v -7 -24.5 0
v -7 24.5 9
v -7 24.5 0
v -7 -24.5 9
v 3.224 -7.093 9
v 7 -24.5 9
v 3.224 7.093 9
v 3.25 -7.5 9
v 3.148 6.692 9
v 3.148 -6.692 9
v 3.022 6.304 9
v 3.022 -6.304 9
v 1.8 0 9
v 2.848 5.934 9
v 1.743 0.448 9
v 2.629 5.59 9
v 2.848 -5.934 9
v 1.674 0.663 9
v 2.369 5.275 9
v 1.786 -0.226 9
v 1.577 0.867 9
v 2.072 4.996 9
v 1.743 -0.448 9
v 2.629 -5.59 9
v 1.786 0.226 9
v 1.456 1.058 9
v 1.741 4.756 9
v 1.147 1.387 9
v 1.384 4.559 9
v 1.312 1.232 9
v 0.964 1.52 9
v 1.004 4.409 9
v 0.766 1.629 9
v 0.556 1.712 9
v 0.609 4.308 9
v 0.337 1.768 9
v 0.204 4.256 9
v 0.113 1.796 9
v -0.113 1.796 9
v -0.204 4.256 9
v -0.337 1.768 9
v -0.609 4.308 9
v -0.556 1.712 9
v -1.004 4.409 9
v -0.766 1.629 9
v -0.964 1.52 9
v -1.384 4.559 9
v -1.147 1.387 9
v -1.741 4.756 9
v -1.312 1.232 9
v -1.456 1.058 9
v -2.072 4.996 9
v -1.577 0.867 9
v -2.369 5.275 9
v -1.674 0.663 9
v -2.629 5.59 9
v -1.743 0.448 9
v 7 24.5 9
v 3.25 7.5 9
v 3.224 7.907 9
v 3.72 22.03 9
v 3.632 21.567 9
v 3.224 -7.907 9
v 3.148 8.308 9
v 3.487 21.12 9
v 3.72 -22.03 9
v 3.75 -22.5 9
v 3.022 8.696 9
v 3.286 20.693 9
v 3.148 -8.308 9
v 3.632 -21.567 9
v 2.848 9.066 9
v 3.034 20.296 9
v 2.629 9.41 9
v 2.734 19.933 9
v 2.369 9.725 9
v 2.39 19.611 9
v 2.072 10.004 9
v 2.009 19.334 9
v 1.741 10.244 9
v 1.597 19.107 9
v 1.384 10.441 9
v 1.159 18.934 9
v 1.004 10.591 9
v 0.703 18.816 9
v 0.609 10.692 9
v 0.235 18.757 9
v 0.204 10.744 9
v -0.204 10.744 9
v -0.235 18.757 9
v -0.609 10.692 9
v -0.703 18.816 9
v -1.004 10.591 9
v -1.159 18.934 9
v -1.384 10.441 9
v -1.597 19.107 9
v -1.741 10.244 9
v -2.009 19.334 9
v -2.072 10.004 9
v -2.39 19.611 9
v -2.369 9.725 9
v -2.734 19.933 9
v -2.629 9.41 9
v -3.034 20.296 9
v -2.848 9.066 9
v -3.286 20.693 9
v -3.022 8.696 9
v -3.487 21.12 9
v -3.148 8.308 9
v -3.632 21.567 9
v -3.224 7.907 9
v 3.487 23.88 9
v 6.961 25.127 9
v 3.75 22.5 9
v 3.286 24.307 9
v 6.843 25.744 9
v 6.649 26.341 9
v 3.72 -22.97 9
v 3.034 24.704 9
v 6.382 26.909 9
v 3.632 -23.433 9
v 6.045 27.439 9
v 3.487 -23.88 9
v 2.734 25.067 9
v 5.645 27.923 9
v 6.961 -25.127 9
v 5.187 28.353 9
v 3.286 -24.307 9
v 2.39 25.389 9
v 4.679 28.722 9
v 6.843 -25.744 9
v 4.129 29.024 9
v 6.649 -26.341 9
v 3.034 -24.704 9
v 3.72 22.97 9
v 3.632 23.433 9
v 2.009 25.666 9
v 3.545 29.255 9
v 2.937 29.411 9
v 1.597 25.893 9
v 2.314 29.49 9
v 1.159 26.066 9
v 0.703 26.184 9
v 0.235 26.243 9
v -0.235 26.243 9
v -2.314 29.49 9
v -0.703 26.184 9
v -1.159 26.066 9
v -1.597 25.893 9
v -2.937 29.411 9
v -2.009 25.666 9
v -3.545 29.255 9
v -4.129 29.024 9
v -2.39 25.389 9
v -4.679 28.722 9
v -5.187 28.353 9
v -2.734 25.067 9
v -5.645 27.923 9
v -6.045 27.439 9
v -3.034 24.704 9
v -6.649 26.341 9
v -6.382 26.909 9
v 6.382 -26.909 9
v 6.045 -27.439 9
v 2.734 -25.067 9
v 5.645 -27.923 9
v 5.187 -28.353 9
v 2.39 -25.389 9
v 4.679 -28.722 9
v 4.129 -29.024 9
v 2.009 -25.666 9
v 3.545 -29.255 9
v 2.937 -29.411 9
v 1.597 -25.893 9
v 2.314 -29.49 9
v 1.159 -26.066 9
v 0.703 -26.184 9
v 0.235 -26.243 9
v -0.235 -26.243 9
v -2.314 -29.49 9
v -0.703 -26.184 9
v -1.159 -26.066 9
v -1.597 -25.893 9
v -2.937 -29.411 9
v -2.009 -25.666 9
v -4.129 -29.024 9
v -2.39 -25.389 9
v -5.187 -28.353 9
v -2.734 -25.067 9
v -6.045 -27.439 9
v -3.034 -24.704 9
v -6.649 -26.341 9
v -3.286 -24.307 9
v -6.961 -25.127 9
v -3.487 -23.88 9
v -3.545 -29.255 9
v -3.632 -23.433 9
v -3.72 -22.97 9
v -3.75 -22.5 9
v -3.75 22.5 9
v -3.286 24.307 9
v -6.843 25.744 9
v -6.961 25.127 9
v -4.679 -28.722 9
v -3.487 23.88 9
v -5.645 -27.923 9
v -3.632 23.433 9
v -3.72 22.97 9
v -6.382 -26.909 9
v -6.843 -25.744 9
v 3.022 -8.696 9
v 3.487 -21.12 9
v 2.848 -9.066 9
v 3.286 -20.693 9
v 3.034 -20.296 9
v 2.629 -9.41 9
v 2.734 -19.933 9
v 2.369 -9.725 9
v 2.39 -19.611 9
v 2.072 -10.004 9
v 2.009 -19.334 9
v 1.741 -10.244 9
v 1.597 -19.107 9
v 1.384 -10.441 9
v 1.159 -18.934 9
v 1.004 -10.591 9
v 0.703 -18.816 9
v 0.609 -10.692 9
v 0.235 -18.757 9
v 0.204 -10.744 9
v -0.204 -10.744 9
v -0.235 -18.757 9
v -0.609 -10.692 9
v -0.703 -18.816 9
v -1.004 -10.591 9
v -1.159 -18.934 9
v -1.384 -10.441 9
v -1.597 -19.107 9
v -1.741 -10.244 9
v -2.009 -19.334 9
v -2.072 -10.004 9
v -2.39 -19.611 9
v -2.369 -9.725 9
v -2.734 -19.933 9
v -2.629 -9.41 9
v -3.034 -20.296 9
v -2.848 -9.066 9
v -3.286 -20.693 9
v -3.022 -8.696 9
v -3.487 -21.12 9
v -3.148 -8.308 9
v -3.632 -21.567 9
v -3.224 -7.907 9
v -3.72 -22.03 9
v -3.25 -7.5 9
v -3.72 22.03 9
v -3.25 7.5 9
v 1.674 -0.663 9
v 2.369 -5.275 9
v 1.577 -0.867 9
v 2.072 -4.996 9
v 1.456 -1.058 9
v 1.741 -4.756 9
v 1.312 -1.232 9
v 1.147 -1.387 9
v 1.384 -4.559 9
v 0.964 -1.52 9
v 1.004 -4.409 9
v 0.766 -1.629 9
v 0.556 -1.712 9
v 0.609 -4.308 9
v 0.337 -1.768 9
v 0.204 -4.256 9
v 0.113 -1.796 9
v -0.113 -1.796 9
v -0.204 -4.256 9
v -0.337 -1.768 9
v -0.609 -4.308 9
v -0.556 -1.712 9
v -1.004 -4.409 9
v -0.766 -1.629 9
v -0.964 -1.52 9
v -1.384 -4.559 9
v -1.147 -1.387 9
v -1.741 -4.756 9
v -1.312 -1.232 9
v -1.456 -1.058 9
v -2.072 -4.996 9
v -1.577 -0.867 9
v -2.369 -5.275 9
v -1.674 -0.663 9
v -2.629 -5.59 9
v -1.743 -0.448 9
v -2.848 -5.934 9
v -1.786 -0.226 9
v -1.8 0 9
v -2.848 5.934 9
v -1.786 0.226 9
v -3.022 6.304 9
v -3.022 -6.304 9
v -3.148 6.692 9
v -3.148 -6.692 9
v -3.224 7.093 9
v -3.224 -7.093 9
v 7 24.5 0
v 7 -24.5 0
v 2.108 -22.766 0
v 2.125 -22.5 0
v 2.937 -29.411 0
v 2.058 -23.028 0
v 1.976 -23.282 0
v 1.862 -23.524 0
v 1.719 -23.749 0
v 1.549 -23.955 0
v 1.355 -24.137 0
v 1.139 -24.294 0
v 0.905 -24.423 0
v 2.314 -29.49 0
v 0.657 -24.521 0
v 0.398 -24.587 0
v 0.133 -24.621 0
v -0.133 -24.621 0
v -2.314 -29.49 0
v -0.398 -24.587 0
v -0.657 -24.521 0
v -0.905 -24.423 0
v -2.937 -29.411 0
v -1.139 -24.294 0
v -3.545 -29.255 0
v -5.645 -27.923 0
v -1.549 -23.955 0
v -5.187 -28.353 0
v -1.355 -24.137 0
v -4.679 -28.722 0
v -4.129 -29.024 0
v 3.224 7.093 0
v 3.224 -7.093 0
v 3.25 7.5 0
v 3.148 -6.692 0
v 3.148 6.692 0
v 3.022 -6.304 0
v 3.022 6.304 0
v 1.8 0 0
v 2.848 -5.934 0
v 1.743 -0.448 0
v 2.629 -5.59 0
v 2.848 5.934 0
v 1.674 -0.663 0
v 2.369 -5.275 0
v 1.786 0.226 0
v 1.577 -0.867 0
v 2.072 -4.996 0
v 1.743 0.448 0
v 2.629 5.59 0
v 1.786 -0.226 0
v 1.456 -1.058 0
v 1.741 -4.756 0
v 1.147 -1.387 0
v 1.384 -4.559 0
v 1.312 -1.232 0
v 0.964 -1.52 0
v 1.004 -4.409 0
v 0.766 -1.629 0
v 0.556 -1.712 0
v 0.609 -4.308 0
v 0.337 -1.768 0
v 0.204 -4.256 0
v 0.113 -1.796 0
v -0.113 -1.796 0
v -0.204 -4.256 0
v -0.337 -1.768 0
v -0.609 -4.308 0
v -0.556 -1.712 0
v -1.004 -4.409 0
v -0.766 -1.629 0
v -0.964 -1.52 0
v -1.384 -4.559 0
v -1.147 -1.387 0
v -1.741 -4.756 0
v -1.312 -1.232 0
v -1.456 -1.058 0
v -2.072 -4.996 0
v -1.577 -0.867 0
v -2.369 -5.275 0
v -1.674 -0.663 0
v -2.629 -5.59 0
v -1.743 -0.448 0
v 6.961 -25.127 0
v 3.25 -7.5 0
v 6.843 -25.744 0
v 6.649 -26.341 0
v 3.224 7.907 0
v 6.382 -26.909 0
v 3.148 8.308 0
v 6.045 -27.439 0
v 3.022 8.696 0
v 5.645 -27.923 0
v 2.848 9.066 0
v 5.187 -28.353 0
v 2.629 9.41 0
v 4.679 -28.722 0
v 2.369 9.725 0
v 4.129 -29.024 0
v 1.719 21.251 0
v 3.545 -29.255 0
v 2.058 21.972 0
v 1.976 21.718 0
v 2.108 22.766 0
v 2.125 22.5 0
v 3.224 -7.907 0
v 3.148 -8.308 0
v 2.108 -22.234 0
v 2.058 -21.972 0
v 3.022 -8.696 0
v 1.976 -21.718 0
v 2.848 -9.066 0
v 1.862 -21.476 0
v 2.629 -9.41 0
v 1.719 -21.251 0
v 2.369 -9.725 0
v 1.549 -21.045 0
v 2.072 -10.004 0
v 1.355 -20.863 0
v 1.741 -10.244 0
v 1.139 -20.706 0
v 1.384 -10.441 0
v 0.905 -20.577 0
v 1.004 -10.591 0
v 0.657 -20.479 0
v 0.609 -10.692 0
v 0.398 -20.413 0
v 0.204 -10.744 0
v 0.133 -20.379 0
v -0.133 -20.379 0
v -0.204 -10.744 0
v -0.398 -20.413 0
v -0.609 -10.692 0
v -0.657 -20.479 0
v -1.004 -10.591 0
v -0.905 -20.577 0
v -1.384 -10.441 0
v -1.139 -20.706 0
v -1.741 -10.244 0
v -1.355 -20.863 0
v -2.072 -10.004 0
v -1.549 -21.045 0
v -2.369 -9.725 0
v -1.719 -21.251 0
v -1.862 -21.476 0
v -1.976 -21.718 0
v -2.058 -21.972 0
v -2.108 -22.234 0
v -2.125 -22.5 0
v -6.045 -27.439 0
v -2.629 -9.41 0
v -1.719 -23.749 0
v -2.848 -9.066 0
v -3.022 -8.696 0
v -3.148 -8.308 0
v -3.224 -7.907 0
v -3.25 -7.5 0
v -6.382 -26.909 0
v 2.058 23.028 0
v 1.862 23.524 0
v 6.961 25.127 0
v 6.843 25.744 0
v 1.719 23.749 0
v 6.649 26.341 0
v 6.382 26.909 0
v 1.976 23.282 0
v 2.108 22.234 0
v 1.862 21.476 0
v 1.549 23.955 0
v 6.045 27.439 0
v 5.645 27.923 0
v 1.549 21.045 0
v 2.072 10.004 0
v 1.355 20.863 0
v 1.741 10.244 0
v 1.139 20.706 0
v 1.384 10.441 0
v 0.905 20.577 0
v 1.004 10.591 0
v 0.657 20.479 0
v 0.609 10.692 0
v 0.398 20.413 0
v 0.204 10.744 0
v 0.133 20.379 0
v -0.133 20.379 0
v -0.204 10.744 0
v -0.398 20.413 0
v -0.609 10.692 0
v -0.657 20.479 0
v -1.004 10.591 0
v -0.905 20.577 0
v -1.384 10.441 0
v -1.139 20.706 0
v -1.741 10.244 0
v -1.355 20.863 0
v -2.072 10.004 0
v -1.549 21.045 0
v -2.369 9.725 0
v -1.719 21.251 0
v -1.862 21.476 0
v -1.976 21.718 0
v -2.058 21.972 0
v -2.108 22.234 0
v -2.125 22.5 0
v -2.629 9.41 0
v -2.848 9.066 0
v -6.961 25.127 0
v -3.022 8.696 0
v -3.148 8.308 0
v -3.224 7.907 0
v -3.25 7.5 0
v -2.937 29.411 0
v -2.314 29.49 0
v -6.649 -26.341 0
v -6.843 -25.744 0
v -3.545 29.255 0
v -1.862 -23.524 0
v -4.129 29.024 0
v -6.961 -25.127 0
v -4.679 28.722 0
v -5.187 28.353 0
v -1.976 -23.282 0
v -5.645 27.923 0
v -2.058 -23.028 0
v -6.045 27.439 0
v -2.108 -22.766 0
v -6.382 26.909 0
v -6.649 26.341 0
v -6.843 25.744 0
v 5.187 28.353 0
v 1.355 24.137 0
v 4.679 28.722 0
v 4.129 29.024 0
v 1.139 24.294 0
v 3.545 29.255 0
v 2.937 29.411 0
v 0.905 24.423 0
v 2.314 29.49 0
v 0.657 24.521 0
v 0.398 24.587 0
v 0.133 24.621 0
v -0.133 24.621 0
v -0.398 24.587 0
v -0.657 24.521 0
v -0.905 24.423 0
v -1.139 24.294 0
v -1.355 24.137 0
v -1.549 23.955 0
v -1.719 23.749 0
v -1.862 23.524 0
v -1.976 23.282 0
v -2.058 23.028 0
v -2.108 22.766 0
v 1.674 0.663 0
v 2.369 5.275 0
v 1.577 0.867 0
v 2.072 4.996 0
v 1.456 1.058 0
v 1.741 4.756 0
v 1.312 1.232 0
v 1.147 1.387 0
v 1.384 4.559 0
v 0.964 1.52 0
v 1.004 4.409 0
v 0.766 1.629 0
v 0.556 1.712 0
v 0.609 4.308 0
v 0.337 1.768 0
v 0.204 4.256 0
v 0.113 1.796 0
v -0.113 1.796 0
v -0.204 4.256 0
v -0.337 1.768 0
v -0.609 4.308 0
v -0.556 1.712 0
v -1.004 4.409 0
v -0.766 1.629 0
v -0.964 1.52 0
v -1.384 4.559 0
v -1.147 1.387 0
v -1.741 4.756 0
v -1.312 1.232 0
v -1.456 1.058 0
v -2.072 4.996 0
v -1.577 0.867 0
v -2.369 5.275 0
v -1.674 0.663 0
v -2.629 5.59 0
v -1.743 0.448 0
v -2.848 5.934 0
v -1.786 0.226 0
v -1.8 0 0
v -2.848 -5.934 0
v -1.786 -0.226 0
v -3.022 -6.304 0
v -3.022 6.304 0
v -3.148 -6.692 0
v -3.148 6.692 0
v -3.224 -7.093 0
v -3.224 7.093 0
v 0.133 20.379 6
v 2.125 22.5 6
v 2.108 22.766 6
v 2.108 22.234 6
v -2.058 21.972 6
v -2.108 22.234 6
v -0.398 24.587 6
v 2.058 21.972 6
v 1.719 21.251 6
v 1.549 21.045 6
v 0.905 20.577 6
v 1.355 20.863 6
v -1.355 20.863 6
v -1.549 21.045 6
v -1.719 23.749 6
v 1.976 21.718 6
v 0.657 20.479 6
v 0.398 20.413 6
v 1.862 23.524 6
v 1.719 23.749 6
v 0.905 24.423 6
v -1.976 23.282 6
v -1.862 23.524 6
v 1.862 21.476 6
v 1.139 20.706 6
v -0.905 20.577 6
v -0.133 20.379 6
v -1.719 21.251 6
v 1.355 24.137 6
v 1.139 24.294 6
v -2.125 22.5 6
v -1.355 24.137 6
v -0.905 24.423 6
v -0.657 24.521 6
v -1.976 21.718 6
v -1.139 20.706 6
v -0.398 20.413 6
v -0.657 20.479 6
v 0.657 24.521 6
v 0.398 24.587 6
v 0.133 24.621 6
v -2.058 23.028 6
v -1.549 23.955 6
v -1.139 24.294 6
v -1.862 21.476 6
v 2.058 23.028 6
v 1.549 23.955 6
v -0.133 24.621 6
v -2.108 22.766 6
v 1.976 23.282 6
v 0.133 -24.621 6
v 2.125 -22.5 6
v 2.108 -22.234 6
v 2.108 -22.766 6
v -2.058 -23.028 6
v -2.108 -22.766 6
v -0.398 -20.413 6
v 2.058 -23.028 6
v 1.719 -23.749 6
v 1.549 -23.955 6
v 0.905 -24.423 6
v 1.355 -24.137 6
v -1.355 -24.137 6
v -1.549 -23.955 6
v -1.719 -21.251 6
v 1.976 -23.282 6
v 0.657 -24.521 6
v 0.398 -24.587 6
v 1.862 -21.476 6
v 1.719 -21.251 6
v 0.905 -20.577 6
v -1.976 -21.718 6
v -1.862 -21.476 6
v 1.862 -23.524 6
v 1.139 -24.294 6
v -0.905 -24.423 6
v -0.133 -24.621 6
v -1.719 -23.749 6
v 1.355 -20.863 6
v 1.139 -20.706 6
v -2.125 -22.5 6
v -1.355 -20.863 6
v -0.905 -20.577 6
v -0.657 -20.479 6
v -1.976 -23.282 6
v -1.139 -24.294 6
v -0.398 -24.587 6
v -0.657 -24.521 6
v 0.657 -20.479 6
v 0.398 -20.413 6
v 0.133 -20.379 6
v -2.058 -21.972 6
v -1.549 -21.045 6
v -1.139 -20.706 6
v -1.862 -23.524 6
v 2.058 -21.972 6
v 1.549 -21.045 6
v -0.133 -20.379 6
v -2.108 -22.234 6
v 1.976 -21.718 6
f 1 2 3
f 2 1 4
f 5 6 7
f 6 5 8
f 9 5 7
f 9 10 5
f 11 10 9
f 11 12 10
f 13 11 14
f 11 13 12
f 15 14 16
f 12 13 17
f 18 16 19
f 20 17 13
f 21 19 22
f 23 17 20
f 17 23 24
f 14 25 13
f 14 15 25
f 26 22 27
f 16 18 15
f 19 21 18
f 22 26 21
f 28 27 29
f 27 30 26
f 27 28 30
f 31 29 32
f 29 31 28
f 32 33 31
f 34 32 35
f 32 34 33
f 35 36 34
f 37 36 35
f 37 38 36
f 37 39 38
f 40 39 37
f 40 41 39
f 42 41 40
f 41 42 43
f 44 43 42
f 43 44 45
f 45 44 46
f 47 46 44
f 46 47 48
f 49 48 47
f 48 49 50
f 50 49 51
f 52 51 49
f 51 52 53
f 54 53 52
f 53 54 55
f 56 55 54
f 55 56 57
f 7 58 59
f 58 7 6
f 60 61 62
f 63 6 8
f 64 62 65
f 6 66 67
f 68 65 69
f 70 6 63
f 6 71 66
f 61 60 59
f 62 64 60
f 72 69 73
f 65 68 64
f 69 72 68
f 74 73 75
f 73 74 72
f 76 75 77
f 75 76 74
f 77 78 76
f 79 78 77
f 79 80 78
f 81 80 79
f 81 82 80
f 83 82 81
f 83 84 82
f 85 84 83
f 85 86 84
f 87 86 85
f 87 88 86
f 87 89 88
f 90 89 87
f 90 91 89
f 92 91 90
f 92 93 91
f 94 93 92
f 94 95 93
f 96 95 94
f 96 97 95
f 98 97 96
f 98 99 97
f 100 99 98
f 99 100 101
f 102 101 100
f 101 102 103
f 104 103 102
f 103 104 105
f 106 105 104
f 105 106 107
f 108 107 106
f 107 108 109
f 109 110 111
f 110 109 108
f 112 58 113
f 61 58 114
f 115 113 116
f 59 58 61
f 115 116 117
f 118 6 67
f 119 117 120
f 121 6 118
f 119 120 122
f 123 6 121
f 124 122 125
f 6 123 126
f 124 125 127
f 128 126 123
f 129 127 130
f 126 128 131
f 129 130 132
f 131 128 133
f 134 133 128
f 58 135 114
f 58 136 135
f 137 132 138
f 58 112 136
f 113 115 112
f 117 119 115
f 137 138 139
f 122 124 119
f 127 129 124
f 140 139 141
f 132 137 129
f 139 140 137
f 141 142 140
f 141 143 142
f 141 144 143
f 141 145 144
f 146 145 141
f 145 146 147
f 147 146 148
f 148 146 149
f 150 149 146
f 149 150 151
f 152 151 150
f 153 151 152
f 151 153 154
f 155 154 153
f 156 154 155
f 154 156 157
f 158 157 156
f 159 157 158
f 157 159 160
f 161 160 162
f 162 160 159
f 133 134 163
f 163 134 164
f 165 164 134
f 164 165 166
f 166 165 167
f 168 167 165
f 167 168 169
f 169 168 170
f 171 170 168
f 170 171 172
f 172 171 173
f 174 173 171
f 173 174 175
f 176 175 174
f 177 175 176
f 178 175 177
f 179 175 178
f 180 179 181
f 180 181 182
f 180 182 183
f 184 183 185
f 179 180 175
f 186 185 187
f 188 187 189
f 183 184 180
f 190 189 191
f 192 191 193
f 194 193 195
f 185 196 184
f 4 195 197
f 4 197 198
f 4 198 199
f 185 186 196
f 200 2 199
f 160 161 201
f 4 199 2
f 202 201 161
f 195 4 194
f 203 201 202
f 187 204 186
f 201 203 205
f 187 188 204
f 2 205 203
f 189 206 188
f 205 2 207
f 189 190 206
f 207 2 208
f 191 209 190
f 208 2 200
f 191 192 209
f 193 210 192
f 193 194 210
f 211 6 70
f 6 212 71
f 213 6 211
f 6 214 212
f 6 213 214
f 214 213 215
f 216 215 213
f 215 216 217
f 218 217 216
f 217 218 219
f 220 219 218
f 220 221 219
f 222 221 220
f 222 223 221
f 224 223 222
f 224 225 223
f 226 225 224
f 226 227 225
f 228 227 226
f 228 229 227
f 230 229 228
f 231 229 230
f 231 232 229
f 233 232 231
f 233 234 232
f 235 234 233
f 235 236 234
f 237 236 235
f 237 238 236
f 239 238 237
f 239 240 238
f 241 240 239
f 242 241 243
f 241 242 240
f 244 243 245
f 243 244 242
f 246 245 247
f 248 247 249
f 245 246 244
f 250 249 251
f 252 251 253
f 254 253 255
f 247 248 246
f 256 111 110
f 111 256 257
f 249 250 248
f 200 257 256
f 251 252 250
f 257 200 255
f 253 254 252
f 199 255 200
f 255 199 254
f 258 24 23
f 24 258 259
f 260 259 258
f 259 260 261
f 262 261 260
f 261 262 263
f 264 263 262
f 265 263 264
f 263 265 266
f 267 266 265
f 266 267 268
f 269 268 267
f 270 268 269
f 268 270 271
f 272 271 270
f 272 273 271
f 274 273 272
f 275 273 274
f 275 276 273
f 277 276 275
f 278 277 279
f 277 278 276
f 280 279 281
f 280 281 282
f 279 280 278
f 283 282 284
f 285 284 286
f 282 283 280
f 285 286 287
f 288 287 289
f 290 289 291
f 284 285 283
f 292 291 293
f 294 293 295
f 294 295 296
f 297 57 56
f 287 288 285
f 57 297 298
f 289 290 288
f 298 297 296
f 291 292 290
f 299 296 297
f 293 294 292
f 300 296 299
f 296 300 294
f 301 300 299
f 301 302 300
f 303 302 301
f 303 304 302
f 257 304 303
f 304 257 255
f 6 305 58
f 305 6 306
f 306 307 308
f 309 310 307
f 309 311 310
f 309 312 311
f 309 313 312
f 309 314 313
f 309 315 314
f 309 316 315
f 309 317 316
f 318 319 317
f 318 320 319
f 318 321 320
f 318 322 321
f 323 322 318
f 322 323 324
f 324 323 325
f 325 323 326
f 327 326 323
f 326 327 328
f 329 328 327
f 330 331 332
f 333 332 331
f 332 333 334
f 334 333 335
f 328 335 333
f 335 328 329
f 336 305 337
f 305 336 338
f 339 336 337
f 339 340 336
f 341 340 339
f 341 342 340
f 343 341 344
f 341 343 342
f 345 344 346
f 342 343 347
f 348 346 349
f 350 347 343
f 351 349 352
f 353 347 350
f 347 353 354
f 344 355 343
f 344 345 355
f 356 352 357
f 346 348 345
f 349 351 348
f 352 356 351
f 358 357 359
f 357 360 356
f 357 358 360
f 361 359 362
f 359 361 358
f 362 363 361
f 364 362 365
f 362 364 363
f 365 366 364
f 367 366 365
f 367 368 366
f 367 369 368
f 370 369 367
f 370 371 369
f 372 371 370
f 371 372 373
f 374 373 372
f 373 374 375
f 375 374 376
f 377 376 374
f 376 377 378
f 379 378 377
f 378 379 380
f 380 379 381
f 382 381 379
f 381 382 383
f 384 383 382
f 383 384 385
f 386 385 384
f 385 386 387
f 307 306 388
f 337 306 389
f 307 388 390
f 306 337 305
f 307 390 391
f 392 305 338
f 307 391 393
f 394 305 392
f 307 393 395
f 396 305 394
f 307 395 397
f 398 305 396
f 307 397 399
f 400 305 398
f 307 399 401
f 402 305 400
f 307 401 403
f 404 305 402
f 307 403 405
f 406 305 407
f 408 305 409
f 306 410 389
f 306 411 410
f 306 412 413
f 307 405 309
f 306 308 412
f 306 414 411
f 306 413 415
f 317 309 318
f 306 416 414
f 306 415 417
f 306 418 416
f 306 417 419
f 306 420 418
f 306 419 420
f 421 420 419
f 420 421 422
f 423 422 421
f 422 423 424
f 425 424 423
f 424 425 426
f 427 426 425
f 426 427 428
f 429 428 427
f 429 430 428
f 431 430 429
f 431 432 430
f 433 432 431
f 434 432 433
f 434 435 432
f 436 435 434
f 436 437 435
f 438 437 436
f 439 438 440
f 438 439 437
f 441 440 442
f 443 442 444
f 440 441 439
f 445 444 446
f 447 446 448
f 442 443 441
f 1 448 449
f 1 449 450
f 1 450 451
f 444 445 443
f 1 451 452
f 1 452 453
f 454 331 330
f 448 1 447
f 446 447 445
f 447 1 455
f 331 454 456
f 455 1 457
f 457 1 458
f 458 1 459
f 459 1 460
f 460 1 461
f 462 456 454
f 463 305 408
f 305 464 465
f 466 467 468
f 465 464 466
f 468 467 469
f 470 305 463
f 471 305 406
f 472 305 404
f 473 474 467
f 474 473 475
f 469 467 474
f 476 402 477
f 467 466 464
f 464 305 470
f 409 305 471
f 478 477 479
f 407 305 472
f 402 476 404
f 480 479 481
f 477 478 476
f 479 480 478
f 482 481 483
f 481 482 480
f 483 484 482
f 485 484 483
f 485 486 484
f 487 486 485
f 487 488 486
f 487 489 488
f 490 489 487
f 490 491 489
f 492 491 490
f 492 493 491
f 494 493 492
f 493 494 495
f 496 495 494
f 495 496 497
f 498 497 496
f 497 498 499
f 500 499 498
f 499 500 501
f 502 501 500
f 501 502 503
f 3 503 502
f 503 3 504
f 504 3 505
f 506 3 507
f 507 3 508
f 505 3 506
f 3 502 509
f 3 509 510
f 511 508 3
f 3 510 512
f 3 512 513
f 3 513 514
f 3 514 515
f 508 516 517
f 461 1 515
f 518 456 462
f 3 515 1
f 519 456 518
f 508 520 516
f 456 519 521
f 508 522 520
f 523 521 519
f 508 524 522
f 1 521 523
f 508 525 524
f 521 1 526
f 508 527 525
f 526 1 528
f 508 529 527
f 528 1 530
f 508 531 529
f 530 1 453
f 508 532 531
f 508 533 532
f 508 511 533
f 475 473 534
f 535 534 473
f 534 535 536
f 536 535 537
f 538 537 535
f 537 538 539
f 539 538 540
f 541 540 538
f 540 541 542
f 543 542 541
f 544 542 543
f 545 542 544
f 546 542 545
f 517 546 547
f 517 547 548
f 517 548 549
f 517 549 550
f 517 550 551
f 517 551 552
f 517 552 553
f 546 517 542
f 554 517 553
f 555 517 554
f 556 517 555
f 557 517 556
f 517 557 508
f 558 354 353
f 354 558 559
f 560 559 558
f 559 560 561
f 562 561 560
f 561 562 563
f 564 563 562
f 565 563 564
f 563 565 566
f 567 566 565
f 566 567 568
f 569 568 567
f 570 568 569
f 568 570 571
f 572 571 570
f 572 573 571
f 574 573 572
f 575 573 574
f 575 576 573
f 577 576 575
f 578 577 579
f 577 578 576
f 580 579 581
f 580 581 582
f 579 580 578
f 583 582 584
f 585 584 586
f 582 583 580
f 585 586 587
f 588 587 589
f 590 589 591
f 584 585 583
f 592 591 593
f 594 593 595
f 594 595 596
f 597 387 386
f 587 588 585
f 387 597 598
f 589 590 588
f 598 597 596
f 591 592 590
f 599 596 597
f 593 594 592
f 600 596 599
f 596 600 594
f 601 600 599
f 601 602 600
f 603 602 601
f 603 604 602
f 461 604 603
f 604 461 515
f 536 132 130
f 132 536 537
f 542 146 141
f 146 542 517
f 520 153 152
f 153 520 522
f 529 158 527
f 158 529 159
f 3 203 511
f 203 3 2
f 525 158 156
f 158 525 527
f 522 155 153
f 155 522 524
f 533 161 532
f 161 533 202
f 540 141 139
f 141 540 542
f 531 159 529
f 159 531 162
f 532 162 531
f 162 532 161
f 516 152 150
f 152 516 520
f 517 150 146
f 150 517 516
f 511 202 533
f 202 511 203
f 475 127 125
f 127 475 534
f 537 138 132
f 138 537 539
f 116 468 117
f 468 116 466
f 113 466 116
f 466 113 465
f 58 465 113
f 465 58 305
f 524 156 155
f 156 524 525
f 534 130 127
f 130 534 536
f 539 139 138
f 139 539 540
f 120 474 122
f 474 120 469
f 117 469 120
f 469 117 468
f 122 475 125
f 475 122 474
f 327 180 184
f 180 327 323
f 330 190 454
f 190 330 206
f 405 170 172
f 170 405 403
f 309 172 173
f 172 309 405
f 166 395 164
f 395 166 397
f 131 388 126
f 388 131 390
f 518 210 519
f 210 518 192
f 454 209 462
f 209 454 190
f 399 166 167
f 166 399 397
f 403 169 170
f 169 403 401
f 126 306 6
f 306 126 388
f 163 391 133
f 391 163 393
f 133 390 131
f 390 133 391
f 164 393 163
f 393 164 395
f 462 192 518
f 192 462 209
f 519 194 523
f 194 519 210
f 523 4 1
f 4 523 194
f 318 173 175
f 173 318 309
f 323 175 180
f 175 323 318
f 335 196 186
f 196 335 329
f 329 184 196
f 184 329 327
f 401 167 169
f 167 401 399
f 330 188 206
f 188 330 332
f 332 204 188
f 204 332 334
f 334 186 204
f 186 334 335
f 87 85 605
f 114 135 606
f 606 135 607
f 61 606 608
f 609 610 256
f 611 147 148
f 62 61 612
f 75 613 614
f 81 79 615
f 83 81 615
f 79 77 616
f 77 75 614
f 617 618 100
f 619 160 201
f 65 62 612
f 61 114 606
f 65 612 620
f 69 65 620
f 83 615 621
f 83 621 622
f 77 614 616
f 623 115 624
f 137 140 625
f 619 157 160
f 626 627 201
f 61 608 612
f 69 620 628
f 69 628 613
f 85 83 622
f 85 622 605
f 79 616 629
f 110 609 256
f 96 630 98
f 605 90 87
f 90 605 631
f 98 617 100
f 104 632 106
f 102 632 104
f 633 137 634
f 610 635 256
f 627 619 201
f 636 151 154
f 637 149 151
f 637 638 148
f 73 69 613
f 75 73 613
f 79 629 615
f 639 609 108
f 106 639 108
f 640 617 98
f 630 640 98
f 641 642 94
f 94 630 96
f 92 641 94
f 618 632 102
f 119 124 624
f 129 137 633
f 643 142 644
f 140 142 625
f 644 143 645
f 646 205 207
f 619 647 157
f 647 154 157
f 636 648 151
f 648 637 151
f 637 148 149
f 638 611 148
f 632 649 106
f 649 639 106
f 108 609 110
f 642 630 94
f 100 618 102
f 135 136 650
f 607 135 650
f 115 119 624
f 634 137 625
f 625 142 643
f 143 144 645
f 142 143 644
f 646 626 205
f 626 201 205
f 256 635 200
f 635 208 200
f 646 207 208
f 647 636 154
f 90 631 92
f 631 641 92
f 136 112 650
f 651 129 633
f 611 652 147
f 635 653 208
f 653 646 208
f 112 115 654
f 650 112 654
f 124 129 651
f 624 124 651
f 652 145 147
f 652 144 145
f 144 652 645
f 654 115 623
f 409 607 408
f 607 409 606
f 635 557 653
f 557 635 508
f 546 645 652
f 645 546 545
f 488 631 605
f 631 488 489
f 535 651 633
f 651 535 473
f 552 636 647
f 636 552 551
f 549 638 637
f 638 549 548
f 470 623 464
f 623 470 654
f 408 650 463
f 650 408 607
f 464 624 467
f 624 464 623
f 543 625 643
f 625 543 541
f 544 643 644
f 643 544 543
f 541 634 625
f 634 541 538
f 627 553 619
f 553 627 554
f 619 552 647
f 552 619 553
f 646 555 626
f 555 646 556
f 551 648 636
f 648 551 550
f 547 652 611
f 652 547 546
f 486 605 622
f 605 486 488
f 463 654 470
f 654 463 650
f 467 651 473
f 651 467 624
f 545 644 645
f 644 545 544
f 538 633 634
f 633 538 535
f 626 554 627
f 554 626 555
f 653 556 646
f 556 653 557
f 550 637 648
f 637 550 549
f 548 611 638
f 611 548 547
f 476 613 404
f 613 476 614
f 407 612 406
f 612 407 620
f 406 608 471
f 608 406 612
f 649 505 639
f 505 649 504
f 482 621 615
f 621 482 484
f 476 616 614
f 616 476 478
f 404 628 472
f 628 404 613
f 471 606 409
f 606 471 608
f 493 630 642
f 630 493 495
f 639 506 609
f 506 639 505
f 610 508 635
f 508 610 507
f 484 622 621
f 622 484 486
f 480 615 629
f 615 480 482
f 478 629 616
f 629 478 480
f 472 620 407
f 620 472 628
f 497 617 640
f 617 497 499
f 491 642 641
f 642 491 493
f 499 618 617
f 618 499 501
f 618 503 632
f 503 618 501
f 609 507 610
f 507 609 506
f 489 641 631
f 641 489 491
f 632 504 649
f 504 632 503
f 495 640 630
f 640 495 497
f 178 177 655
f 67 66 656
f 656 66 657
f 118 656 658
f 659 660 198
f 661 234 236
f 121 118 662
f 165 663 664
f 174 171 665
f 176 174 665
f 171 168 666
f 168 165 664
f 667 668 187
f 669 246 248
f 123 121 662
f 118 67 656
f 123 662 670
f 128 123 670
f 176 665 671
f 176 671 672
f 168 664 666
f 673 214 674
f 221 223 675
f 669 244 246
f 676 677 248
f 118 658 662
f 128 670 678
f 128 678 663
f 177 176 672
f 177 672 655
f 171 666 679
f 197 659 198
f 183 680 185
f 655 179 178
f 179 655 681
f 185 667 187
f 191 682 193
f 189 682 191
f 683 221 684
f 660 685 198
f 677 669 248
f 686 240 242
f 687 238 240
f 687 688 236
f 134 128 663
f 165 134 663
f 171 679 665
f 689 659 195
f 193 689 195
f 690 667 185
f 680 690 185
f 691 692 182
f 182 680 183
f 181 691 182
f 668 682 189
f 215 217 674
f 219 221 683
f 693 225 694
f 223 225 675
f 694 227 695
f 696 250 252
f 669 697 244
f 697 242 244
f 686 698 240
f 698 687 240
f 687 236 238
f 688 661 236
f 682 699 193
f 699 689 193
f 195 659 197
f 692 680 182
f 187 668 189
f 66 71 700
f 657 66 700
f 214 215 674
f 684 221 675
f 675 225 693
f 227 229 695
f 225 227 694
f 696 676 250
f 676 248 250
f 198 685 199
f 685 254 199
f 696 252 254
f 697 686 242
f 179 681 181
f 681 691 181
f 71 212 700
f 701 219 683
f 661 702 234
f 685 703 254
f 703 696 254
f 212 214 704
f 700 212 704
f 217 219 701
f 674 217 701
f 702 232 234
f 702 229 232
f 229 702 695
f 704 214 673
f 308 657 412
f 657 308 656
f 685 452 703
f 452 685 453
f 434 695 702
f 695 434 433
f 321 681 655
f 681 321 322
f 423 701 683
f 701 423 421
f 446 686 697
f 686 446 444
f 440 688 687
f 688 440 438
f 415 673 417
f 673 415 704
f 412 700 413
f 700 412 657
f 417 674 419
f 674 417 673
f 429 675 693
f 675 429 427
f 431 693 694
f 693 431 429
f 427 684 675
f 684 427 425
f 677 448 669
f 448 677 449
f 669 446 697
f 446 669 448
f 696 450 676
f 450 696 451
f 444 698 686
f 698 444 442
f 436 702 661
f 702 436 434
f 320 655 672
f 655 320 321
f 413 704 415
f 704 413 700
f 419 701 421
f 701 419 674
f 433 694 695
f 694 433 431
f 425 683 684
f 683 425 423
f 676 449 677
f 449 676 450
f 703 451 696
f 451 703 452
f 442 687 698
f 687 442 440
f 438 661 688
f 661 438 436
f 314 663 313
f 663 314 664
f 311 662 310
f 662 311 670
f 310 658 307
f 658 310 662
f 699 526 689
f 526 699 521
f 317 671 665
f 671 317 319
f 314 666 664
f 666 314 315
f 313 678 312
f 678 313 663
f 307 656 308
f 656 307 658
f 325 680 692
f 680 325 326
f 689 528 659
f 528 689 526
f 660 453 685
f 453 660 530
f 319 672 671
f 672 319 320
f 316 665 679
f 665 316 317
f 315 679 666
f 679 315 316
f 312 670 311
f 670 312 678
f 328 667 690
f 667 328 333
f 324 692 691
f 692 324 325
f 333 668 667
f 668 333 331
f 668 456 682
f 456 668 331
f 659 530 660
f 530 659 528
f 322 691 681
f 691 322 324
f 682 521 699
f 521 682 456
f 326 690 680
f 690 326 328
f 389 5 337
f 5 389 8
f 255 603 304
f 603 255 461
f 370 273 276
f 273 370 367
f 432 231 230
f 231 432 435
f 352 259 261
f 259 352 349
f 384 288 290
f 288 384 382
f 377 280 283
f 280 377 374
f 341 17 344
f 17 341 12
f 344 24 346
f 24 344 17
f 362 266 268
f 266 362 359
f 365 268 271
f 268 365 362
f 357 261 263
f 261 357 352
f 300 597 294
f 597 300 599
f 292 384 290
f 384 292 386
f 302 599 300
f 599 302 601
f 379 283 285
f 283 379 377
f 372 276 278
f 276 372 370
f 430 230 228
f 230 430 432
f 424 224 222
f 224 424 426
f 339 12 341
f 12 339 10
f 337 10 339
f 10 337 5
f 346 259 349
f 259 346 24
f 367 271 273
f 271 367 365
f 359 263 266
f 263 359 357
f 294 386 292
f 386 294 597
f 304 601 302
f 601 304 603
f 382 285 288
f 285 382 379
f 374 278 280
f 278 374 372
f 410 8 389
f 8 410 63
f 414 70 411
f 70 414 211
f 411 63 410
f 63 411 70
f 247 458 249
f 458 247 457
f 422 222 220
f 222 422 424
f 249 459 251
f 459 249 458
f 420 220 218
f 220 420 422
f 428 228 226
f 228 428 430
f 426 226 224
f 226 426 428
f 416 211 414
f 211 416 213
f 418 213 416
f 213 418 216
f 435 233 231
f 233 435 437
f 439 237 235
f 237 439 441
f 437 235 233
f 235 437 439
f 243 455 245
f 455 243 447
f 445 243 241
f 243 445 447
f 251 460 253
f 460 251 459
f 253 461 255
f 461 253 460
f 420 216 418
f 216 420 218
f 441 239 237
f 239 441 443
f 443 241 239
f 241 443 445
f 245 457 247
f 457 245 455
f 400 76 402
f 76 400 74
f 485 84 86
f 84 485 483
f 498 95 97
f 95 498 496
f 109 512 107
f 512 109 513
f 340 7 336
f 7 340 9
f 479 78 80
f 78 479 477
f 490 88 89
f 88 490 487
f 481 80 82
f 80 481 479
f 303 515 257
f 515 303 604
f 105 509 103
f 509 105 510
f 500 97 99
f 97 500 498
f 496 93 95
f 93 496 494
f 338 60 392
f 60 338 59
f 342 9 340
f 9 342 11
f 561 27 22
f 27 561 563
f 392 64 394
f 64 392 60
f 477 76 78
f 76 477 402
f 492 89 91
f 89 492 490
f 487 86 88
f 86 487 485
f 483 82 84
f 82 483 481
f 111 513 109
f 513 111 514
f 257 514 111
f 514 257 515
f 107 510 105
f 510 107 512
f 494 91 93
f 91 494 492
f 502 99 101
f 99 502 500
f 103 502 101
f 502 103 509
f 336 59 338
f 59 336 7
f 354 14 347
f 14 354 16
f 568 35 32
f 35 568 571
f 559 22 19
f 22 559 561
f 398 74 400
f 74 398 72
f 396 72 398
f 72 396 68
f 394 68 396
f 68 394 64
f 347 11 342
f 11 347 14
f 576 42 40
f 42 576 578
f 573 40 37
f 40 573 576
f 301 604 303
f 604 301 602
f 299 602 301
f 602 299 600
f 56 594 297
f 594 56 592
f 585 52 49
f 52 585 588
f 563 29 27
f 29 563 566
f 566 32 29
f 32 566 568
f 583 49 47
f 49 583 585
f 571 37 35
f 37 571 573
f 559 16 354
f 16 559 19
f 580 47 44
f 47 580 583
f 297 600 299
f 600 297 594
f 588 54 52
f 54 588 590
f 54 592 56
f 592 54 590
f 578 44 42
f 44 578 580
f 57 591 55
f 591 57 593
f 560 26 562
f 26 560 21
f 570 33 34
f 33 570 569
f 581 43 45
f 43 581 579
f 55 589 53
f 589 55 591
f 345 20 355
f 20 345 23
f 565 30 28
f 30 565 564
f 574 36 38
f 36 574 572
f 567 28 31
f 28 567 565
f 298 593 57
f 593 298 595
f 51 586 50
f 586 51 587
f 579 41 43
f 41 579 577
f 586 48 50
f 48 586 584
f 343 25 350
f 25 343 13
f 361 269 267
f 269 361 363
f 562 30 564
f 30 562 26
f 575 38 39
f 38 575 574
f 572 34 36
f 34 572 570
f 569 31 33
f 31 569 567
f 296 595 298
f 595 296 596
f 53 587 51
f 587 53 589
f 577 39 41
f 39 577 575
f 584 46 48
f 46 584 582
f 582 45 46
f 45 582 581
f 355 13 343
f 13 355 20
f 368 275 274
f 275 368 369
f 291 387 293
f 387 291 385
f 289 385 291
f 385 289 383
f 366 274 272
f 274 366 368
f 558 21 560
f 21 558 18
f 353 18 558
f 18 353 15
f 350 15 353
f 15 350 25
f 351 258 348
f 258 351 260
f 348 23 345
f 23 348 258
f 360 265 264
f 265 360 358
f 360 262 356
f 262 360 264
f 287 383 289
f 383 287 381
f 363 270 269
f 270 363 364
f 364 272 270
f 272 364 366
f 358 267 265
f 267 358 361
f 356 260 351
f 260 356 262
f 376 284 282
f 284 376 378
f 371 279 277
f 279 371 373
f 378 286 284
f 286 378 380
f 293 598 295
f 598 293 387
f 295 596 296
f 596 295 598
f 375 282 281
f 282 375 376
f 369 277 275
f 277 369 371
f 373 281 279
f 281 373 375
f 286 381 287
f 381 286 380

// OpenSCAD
$fn = 50;


difference() {
	union() {
		hull() {
			translate(v = [-2.0000000000, 9.5000000000, 0]) {
				cylinder(h = 9, r = 5);
			}
			translate(v = [2.0000000000, 9.5000000000, 0]) {
				cylinder(h = 9, r = 5);
			}
			translate(v = [-2.0000000000, -9.5000000000, 0]) {
				cylinder(h = 9, r = 5);
			}
			translate(v = [2.0000000000, -9.5000000000, 0]) {
				cylinder(h = 9, r = 5);
			}
		}
		translate(v = [0.0000000000, 15.0000000000, 0]) {
			hull() {
				translate(v = [-2.0000000000, 9.5000000000, 0]) {
					cylinder(h = 9, r = 5);
				}
				translate(v = [2.0000000000, 9.5000000000, 0]) {
					cylinder(h = 9, r = 5);
				}
				translate(v = [-2.0000000000, -9.5000000000, 0]) {
					cylinder(h = 9, r = 5);
				}
				translate(v = [2.0000000000, -9.5000000000, 0]) {
					cylinder(h = 9, r = 5);
				}
			}
		}
		translate(v = [0.0000000000, 15.0000000000, 0]) {
			hull() {
				translate(v = [-2.0000000000, 9.5000000000, 0]) {
					cylinder(h = 9, r = 5);
				}
				translate(v = [2.0000000000, 9.5000000000, 0]) {
					cylinder(h = 9, r = 5);
				}
				translate(v = [-2.0000000000, -9.5000000000, 0]) {
					cylinder(h = 9, r = 5);
				}
				translate(v = [2.0000000000, -9.5000000000, 0]) {
					cylinder(h = 9, r = 5);
				}
			}
		}
		translate(v = [0.0000000000, -15.0000000000, 0]) {
			hull() {
				translate(v = [-2.0000000000, 9.5000000000, 0]) {
					cylinder(h = 9, r = 5);
				}
				translate(v = [2.0000000000, 9.5000000000, 0]) {
					cylinder(h = 9, r = 5);
				}
				translate(v = [-2.0000000000, -9.5000000000, 0]) {
					cylinder(h = 9, r = 5);
				}
				translate(v = [2.0000000000, -9.5000000000, 0]) {
					cylinder(h = 9, r = 5);
				}
			}
		}
		translate(v = [0.0000000000, -15.0000000000, 0]) {
			hull() {
				translate(v = [-2.0000000000, 9.5000000000, 0]) {
					cylinder(h = 9, r = 5);
				}
				translate(v = [2.0000000000, 9.5000000000, 0]) {
					cylinder(h = 9, r = 5);
				}
				translate(v = [-2.0000000000, -9.5000000000, 0]) {
					cylinder(h = 9, r = 5);
				}
				translate(v = [2.0000000000, -9.5000000000, 0]) {
					cylinder(h = 9, r = 5);
				}
			}
		}
	}
	union() {
		translate(v = [0.0000000000, 22.5000000000, 9]) {
			rotate(a = [0, 0, 0]) {
				difference() {
					union() {
						#translate(v = [0, 0, -9.0000000000]) {
							cylinder(h = 9, r = 2.0000000000);
						}
						#translate(v = [0, 0, -3]) {
							cylinder(h = 3, r1 = 2.1250000000, r2 = 3.7500000000);
						}
						#translate(v = [0, 0, -9.0000000000]) {
							cylinder(h = 9, r = 2.1250000000);
						}
						#translate(v = [0, 0, -9.0000000000]) {
							cylinder(h = 9, r = 2.0000000000);
						}
					}
					union();
				}
			}
		}
		translate(v = [0.0000000000, 22.5000000000, 9]) {
			rotate(a = [0, 0, 0]) {
				difference() {
					union() {
						#translate(v = [0, 0, -9.0000000000]) {
							cylinder(h = 9, r = 2.0000000000);
						}
						#translate(v = [0, 0, -3]) {
							cylinder(h = 3, r1 = 2.1250000000, r2 = 3.7500000000);
						}
						#translate(v = [0, 0, -9.0000000000]) {
							cylinder(h = 9, r = 2.1250000000);
						}
						#translate(v = [0, 0, -9.0000000000]) {
							cylinder(h = 9, r = 2.0000000000);
						}
					}
					union();
				}
			}
		}
		translate(v = [0.0000000000, -22.5000000000, 9]) {
			rotate(a = [0, 0, 0]) {
				difference() {
					union() {
						#translate(v = [0, 0, -9.0000000000]) {
							cylinder(h = 9, r = 2.0000000000);
						}
						#translate(v = [0, 0, -3]) {
							cylinder(h = 3, r1 = 2.1250000000, r2 = 3.7500000000);
						}
						#translate(v = [0, 0, -9.0000000000]) {
							cylinder(h = 9, r = 2.1250000000);
						}
						#translate(v = [0, 0, -9.0000000000]) {
							cylinder(h = 9, r = 2.0000000000);
						}
					}
					union();
				}
			}
		}
		translate(v = [0.0000000000, -22.5000000000, 9]) {
			rotate(a = [0, 0, 0]) {
				difference() {
					union() {
						#translate(v = [0, 0, -9.0000000000]) {
							cylinder(h = 9, r = 2.0000000000);
						}
						#translate(v = [0, 0, -3]) {
							cylinder(h = 3, r1 = 2.1250000000, r2 = 3.7500000000);
						}
						#translate(v = [0, 0, -9.0000000000]) {
							cylinder(h = 9, r = 2.1250000000);
						}
						#translate(v = [0, 0, -9.0000000000]) {
							cylinder(h = 9, r = 2.0000000000);
						}
					}
					union();
				}
			}
		}
		translate(v = [0.0000000000, -7.5000000000, 0]) {
			translate(v = [0, 0, -100]) {
				cylinder(h = 200, r = 3.2500000000);
			}
		}
		translate(v = [0.0000000000, 7.5000000000, 0]) {
			translate(v = [0, 0, -100]) {
				cylinder(h = 200, r = 3.2500000000);
			}
		}
		translate(v = [0.0000000000, -7.5000000000, 0]) {
			translate(v = [0, 0, -100]) {
				cylinder(h = 200, r = 1.8000000000);
			}
		}
		translate(v = [0, 0, -100]) {
			cylinder(h = 200, r = 1.8000000000);
		}
		translate(v = [0.0000000000, 7.5000000000, 0]) {
			translate(v = [0, 0, -100]) {
				cylinder(h = 200, r = 1.8000000000);
			}
		}
	}
}
